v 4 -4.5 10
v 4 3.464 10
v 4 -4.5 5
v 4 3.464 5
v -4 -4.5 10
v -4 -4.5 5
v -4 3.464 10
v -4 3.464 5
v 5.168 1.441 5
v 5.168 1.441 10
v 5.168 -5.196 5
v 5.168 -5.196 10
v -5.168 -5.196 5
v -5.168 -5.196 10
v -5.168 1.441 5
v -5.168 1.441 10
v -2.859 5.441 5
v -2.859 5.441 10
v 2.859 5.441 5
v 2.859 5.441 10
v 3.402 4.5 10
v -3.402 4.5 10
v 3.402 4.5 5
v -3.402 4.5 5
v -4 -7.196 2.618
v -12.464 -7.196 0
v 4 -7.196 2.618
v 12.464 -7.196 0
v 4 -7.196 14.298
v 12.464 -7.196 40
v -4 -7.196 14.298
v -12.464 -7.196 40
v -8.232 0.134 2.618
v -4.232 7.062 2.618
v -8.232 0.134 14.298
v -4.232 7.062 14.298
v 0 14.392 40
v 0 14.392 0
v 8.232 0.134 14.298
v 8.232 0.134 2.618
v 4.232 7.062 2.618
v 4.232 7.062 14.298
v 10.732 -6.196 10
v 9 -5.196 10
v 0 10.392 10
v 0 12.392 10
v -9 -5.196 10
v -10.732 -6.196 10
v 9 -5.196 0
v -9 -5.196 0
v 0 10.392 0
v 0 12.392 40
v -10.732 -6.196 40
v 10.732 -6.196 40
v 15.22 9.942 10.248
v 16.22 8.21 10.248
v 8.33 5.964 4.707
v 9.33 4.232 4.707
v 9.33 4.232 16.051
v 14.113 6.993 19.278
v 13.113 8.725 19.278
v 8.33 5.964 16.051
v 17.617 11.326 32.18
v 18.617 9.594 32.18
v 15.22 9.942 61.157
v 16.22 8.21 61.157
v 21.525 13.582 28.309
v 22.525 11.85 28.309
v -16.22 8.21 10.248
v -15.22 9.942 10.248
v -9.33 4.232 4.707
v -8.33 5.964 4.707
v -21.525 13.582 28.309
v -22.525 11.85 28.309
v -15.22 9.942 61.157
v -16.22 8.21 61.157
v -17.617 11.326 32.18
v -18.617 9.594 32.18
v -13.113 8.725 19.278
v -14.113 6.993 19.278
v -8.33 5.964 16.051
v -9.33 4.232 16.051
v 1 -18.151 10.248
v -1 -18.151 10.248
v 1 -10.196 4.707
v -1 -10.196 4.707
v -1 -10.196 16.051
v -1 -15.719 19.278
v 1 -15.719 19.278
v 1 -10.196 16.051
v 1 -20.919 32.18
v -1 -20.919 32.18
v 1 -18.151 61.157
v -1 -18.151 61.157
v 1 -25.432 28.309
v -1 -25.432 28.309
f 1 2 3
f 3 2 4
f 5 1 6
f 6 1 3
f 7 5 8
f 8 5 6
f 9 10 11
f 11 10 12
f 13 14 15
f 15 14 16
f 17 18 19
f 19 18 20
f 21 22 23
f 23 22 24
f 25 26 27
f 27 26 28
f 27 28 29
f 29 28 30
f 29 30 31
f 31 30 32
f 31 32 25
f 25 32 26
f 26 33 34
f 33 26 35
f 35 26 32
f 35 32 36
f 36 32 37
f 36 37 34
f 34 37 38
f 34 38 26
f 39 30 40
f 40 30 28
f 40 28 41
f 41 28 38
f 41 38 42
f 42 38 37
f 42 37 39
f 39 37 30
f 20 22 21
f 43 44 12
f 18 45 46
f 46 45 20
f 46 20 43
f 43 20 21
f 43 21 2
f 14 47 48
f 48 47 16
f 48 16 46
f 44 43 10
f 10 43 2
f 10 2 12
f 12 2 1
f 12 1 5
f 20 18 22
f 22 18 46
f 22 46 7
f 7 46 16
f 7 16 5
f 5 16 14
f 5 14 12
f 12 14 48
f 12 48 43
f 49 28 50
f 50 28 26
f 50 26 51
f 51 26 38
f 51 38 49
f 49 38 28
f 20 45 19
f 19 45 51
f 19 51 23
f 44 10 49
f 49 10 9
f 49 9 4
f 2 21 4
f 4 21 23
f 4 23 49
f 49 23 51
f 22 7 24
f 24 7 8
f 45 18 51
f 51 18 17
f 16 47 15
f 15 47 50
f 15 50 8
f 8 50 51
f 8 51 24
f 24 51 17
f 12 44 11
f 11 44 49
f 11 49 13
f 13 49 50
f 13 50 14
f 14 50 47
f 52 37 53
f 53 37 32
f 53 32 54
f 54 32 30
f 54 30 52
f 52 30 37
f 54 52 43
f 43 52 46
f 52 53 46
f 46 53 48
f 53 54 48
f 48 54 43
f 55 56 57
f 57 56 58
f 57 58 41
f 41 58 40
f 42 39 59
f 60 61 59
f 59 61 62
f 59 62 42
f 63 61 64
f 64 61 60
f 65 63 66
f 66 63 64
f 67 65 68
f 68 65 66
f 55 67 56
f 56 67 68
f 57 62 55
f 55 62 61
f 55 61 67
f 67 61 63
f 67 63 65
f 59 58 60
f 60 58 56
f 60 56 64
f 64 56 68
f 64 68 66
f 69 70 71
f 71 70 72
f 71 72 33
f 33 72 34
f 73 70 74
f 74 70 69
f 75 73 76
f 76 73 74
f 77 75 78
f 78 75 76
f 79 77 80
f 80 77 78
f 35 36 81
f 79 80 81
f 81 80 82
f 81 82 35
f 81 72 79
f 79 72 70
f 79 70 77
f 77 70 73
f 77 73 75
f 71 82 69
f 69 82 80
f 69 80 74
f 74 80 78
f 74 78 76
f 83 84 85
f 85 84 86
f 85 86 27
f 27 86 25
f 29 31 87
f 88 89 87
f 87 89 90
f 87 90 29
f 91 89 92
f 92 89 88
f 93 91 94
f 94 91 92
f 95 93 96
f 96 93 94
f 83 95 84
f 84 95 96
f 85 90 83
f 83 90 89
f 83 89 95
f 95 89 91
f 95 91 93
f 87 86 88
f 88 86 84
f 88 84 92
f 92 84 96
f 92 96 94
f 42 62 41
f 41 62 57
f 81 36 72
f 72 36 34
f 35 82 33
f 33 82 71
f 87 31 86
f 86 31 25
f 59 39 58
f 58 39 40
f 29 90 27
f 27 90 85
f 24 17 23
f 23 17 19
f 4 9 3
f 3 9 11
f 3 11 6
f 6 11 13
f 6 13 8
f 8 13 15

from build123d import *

# Parameters (mm, degrees)
BOSS_EXTRUDE1_DEPTH  = 10
SKETCH2_W            = 10.336230878
SKETCH2_H            = 10.881732654
SKETCH2_W_2          = 8
SKETCH2_H_2          = 9
BOSS_EXTRUDE2_DEPTH  = 10
EXTRUDE_THIN1_DEPTH  = 30
BOSS_EXTRUDE3_DEPTH  = 1
MIRROR2_COPY_1_DEPTH = 1
CHAMFER2_SIZE        = 3
CUT_EXTRUDE1_DEPTH   = 5


with BuildPart() as part:
    # Sketch1 → Boss-Extrude1 (new body)
    with BuildSketch(Plane.XY):
        Polygon((0, 14.392304845), (-12.464101615, -7.196152423), (12.464101615, -7.196152423), align=None)
        Polygon((0, 10.392304845), (-9, -5.196152423), (9, -5.196152423), align=None, mode=Mode.SUBTRACT)
    extrude(amount=BOSS_EXTRUDE1_DEPTH)

    # Sketch2 → Boss-Extrude2 (add)
    with BuildSketch(Plane.XY.offset(10)):
        Rectangle(SKETCH2_W, SKETCH2_H)
        Rectangle(SKETCH2_W_2, SKETCH2_H_2, mode=Mode.SUBTRACT)
    extrude(amount=-BOSS_EXTRUDE2_DEPTH)

    # Sketch3 → Extrude-Thin1 (add)
    with BuildSketch(Plane.XY.offset(10)):
        Polygon((0, 14.392304845), (-12.464101615, -7.196152423), (12.464101615, -7.196152423), align=None)
        Polygon((0, 12.392304845), (-10.732050808, -6.196152423), (10.732050808, -6.196152423), align=None, mode=Mode.SUBTRACT)
    extrude(amount=EXTRUDE_THIN1_DEPTH)

    # Sketch4 → Boss-Extrude3 (add, symmetric)
    with BuildSketch(Plane(origin=(0, 0, 0), x_dir=(0.866025404, 0.5, 0), z_dir=(-0.5, 0.866025404, 0))):
        Polygon((7.196152423, -2.618036355), (7.196152423, -14.298247708), (15.718557778, -19.278268119), (20.919199073, -32.180049847), (18.151461796, -61.156795565), (25.431971062, -28.309033375), (18.151461796, -10.247502864), align=None)
    boss_extrude3 = extrude(amount=BOSS_EXTRUDE3_DEPTH, both=True)

    # Mirror1: Boss-Extrude3 across plane
    add(boss_extrude3.mirror(Plane(origin=(0, 0, 0), x_dir=(0, 0, 1), z_dir=(1, 0, 0))))

    # Mirror2: Boss-Extrude3 across plane
    add(boss_extrude3.mirror(Plane(origin=(0, 0, 0), x_dir=(0, 0, 1), z_dir=(-0.5, 0.866025404, 0))))

    # Mirror2 copy 1 sketch → Mirror2 copy 1 (add, symmetric)
    with BuildSketch(Plane(origin=(0, 0, 0), x_dir=(0, -1, 0), z_dir=(1, 0, 0))):
        Polygon((7.196152423, -2.618036355), (7.196152423, -14.298247708), (15.718557778, -19.278268119), (20.919199073, -32.180049847), (18.151461796, -61.156795565), (25.431971062, -28.309033375), (18.151461796, -10.247502864), align=None)
    extrude(amount=MIRROR2_COPY_1_DEPTH, both=True)

    # Chamfer2
    chamfer2_edges = [part.edges().sort_by_distance(p)[0] for p in [
        (6.732050808, 2.732050808, 8.458142032),
        (5.732050808, 4.464101615, 8.458142032),
        (-5.732050808, 4.464101615, 8.458142032),
        (-6.732050808, 2.732050808, 8.458142032),
        (-1, -7.196152423, 8.458142032),
        (1, -7.196152423, 8.458142032),
    ]]
    chamfer(chamfer2_edges, length=CHAMFER2_SIZE)

    # Sketch5 → Cut-Extrude1 (cut)
    with BuildSketch(Plane(origin=(0, 0, 0), x_dir=(-1, 0, 0), z_dir=(0, 0, -1))):
        Polygon((0, 10.392304845), (-9, -5.196152423), (9, -5.196152423), align=None)
    extrude(amount=-CUT_EXTRUDE1_DEPTH, mode=Mode.SUBTRACT)


solid = part.part
